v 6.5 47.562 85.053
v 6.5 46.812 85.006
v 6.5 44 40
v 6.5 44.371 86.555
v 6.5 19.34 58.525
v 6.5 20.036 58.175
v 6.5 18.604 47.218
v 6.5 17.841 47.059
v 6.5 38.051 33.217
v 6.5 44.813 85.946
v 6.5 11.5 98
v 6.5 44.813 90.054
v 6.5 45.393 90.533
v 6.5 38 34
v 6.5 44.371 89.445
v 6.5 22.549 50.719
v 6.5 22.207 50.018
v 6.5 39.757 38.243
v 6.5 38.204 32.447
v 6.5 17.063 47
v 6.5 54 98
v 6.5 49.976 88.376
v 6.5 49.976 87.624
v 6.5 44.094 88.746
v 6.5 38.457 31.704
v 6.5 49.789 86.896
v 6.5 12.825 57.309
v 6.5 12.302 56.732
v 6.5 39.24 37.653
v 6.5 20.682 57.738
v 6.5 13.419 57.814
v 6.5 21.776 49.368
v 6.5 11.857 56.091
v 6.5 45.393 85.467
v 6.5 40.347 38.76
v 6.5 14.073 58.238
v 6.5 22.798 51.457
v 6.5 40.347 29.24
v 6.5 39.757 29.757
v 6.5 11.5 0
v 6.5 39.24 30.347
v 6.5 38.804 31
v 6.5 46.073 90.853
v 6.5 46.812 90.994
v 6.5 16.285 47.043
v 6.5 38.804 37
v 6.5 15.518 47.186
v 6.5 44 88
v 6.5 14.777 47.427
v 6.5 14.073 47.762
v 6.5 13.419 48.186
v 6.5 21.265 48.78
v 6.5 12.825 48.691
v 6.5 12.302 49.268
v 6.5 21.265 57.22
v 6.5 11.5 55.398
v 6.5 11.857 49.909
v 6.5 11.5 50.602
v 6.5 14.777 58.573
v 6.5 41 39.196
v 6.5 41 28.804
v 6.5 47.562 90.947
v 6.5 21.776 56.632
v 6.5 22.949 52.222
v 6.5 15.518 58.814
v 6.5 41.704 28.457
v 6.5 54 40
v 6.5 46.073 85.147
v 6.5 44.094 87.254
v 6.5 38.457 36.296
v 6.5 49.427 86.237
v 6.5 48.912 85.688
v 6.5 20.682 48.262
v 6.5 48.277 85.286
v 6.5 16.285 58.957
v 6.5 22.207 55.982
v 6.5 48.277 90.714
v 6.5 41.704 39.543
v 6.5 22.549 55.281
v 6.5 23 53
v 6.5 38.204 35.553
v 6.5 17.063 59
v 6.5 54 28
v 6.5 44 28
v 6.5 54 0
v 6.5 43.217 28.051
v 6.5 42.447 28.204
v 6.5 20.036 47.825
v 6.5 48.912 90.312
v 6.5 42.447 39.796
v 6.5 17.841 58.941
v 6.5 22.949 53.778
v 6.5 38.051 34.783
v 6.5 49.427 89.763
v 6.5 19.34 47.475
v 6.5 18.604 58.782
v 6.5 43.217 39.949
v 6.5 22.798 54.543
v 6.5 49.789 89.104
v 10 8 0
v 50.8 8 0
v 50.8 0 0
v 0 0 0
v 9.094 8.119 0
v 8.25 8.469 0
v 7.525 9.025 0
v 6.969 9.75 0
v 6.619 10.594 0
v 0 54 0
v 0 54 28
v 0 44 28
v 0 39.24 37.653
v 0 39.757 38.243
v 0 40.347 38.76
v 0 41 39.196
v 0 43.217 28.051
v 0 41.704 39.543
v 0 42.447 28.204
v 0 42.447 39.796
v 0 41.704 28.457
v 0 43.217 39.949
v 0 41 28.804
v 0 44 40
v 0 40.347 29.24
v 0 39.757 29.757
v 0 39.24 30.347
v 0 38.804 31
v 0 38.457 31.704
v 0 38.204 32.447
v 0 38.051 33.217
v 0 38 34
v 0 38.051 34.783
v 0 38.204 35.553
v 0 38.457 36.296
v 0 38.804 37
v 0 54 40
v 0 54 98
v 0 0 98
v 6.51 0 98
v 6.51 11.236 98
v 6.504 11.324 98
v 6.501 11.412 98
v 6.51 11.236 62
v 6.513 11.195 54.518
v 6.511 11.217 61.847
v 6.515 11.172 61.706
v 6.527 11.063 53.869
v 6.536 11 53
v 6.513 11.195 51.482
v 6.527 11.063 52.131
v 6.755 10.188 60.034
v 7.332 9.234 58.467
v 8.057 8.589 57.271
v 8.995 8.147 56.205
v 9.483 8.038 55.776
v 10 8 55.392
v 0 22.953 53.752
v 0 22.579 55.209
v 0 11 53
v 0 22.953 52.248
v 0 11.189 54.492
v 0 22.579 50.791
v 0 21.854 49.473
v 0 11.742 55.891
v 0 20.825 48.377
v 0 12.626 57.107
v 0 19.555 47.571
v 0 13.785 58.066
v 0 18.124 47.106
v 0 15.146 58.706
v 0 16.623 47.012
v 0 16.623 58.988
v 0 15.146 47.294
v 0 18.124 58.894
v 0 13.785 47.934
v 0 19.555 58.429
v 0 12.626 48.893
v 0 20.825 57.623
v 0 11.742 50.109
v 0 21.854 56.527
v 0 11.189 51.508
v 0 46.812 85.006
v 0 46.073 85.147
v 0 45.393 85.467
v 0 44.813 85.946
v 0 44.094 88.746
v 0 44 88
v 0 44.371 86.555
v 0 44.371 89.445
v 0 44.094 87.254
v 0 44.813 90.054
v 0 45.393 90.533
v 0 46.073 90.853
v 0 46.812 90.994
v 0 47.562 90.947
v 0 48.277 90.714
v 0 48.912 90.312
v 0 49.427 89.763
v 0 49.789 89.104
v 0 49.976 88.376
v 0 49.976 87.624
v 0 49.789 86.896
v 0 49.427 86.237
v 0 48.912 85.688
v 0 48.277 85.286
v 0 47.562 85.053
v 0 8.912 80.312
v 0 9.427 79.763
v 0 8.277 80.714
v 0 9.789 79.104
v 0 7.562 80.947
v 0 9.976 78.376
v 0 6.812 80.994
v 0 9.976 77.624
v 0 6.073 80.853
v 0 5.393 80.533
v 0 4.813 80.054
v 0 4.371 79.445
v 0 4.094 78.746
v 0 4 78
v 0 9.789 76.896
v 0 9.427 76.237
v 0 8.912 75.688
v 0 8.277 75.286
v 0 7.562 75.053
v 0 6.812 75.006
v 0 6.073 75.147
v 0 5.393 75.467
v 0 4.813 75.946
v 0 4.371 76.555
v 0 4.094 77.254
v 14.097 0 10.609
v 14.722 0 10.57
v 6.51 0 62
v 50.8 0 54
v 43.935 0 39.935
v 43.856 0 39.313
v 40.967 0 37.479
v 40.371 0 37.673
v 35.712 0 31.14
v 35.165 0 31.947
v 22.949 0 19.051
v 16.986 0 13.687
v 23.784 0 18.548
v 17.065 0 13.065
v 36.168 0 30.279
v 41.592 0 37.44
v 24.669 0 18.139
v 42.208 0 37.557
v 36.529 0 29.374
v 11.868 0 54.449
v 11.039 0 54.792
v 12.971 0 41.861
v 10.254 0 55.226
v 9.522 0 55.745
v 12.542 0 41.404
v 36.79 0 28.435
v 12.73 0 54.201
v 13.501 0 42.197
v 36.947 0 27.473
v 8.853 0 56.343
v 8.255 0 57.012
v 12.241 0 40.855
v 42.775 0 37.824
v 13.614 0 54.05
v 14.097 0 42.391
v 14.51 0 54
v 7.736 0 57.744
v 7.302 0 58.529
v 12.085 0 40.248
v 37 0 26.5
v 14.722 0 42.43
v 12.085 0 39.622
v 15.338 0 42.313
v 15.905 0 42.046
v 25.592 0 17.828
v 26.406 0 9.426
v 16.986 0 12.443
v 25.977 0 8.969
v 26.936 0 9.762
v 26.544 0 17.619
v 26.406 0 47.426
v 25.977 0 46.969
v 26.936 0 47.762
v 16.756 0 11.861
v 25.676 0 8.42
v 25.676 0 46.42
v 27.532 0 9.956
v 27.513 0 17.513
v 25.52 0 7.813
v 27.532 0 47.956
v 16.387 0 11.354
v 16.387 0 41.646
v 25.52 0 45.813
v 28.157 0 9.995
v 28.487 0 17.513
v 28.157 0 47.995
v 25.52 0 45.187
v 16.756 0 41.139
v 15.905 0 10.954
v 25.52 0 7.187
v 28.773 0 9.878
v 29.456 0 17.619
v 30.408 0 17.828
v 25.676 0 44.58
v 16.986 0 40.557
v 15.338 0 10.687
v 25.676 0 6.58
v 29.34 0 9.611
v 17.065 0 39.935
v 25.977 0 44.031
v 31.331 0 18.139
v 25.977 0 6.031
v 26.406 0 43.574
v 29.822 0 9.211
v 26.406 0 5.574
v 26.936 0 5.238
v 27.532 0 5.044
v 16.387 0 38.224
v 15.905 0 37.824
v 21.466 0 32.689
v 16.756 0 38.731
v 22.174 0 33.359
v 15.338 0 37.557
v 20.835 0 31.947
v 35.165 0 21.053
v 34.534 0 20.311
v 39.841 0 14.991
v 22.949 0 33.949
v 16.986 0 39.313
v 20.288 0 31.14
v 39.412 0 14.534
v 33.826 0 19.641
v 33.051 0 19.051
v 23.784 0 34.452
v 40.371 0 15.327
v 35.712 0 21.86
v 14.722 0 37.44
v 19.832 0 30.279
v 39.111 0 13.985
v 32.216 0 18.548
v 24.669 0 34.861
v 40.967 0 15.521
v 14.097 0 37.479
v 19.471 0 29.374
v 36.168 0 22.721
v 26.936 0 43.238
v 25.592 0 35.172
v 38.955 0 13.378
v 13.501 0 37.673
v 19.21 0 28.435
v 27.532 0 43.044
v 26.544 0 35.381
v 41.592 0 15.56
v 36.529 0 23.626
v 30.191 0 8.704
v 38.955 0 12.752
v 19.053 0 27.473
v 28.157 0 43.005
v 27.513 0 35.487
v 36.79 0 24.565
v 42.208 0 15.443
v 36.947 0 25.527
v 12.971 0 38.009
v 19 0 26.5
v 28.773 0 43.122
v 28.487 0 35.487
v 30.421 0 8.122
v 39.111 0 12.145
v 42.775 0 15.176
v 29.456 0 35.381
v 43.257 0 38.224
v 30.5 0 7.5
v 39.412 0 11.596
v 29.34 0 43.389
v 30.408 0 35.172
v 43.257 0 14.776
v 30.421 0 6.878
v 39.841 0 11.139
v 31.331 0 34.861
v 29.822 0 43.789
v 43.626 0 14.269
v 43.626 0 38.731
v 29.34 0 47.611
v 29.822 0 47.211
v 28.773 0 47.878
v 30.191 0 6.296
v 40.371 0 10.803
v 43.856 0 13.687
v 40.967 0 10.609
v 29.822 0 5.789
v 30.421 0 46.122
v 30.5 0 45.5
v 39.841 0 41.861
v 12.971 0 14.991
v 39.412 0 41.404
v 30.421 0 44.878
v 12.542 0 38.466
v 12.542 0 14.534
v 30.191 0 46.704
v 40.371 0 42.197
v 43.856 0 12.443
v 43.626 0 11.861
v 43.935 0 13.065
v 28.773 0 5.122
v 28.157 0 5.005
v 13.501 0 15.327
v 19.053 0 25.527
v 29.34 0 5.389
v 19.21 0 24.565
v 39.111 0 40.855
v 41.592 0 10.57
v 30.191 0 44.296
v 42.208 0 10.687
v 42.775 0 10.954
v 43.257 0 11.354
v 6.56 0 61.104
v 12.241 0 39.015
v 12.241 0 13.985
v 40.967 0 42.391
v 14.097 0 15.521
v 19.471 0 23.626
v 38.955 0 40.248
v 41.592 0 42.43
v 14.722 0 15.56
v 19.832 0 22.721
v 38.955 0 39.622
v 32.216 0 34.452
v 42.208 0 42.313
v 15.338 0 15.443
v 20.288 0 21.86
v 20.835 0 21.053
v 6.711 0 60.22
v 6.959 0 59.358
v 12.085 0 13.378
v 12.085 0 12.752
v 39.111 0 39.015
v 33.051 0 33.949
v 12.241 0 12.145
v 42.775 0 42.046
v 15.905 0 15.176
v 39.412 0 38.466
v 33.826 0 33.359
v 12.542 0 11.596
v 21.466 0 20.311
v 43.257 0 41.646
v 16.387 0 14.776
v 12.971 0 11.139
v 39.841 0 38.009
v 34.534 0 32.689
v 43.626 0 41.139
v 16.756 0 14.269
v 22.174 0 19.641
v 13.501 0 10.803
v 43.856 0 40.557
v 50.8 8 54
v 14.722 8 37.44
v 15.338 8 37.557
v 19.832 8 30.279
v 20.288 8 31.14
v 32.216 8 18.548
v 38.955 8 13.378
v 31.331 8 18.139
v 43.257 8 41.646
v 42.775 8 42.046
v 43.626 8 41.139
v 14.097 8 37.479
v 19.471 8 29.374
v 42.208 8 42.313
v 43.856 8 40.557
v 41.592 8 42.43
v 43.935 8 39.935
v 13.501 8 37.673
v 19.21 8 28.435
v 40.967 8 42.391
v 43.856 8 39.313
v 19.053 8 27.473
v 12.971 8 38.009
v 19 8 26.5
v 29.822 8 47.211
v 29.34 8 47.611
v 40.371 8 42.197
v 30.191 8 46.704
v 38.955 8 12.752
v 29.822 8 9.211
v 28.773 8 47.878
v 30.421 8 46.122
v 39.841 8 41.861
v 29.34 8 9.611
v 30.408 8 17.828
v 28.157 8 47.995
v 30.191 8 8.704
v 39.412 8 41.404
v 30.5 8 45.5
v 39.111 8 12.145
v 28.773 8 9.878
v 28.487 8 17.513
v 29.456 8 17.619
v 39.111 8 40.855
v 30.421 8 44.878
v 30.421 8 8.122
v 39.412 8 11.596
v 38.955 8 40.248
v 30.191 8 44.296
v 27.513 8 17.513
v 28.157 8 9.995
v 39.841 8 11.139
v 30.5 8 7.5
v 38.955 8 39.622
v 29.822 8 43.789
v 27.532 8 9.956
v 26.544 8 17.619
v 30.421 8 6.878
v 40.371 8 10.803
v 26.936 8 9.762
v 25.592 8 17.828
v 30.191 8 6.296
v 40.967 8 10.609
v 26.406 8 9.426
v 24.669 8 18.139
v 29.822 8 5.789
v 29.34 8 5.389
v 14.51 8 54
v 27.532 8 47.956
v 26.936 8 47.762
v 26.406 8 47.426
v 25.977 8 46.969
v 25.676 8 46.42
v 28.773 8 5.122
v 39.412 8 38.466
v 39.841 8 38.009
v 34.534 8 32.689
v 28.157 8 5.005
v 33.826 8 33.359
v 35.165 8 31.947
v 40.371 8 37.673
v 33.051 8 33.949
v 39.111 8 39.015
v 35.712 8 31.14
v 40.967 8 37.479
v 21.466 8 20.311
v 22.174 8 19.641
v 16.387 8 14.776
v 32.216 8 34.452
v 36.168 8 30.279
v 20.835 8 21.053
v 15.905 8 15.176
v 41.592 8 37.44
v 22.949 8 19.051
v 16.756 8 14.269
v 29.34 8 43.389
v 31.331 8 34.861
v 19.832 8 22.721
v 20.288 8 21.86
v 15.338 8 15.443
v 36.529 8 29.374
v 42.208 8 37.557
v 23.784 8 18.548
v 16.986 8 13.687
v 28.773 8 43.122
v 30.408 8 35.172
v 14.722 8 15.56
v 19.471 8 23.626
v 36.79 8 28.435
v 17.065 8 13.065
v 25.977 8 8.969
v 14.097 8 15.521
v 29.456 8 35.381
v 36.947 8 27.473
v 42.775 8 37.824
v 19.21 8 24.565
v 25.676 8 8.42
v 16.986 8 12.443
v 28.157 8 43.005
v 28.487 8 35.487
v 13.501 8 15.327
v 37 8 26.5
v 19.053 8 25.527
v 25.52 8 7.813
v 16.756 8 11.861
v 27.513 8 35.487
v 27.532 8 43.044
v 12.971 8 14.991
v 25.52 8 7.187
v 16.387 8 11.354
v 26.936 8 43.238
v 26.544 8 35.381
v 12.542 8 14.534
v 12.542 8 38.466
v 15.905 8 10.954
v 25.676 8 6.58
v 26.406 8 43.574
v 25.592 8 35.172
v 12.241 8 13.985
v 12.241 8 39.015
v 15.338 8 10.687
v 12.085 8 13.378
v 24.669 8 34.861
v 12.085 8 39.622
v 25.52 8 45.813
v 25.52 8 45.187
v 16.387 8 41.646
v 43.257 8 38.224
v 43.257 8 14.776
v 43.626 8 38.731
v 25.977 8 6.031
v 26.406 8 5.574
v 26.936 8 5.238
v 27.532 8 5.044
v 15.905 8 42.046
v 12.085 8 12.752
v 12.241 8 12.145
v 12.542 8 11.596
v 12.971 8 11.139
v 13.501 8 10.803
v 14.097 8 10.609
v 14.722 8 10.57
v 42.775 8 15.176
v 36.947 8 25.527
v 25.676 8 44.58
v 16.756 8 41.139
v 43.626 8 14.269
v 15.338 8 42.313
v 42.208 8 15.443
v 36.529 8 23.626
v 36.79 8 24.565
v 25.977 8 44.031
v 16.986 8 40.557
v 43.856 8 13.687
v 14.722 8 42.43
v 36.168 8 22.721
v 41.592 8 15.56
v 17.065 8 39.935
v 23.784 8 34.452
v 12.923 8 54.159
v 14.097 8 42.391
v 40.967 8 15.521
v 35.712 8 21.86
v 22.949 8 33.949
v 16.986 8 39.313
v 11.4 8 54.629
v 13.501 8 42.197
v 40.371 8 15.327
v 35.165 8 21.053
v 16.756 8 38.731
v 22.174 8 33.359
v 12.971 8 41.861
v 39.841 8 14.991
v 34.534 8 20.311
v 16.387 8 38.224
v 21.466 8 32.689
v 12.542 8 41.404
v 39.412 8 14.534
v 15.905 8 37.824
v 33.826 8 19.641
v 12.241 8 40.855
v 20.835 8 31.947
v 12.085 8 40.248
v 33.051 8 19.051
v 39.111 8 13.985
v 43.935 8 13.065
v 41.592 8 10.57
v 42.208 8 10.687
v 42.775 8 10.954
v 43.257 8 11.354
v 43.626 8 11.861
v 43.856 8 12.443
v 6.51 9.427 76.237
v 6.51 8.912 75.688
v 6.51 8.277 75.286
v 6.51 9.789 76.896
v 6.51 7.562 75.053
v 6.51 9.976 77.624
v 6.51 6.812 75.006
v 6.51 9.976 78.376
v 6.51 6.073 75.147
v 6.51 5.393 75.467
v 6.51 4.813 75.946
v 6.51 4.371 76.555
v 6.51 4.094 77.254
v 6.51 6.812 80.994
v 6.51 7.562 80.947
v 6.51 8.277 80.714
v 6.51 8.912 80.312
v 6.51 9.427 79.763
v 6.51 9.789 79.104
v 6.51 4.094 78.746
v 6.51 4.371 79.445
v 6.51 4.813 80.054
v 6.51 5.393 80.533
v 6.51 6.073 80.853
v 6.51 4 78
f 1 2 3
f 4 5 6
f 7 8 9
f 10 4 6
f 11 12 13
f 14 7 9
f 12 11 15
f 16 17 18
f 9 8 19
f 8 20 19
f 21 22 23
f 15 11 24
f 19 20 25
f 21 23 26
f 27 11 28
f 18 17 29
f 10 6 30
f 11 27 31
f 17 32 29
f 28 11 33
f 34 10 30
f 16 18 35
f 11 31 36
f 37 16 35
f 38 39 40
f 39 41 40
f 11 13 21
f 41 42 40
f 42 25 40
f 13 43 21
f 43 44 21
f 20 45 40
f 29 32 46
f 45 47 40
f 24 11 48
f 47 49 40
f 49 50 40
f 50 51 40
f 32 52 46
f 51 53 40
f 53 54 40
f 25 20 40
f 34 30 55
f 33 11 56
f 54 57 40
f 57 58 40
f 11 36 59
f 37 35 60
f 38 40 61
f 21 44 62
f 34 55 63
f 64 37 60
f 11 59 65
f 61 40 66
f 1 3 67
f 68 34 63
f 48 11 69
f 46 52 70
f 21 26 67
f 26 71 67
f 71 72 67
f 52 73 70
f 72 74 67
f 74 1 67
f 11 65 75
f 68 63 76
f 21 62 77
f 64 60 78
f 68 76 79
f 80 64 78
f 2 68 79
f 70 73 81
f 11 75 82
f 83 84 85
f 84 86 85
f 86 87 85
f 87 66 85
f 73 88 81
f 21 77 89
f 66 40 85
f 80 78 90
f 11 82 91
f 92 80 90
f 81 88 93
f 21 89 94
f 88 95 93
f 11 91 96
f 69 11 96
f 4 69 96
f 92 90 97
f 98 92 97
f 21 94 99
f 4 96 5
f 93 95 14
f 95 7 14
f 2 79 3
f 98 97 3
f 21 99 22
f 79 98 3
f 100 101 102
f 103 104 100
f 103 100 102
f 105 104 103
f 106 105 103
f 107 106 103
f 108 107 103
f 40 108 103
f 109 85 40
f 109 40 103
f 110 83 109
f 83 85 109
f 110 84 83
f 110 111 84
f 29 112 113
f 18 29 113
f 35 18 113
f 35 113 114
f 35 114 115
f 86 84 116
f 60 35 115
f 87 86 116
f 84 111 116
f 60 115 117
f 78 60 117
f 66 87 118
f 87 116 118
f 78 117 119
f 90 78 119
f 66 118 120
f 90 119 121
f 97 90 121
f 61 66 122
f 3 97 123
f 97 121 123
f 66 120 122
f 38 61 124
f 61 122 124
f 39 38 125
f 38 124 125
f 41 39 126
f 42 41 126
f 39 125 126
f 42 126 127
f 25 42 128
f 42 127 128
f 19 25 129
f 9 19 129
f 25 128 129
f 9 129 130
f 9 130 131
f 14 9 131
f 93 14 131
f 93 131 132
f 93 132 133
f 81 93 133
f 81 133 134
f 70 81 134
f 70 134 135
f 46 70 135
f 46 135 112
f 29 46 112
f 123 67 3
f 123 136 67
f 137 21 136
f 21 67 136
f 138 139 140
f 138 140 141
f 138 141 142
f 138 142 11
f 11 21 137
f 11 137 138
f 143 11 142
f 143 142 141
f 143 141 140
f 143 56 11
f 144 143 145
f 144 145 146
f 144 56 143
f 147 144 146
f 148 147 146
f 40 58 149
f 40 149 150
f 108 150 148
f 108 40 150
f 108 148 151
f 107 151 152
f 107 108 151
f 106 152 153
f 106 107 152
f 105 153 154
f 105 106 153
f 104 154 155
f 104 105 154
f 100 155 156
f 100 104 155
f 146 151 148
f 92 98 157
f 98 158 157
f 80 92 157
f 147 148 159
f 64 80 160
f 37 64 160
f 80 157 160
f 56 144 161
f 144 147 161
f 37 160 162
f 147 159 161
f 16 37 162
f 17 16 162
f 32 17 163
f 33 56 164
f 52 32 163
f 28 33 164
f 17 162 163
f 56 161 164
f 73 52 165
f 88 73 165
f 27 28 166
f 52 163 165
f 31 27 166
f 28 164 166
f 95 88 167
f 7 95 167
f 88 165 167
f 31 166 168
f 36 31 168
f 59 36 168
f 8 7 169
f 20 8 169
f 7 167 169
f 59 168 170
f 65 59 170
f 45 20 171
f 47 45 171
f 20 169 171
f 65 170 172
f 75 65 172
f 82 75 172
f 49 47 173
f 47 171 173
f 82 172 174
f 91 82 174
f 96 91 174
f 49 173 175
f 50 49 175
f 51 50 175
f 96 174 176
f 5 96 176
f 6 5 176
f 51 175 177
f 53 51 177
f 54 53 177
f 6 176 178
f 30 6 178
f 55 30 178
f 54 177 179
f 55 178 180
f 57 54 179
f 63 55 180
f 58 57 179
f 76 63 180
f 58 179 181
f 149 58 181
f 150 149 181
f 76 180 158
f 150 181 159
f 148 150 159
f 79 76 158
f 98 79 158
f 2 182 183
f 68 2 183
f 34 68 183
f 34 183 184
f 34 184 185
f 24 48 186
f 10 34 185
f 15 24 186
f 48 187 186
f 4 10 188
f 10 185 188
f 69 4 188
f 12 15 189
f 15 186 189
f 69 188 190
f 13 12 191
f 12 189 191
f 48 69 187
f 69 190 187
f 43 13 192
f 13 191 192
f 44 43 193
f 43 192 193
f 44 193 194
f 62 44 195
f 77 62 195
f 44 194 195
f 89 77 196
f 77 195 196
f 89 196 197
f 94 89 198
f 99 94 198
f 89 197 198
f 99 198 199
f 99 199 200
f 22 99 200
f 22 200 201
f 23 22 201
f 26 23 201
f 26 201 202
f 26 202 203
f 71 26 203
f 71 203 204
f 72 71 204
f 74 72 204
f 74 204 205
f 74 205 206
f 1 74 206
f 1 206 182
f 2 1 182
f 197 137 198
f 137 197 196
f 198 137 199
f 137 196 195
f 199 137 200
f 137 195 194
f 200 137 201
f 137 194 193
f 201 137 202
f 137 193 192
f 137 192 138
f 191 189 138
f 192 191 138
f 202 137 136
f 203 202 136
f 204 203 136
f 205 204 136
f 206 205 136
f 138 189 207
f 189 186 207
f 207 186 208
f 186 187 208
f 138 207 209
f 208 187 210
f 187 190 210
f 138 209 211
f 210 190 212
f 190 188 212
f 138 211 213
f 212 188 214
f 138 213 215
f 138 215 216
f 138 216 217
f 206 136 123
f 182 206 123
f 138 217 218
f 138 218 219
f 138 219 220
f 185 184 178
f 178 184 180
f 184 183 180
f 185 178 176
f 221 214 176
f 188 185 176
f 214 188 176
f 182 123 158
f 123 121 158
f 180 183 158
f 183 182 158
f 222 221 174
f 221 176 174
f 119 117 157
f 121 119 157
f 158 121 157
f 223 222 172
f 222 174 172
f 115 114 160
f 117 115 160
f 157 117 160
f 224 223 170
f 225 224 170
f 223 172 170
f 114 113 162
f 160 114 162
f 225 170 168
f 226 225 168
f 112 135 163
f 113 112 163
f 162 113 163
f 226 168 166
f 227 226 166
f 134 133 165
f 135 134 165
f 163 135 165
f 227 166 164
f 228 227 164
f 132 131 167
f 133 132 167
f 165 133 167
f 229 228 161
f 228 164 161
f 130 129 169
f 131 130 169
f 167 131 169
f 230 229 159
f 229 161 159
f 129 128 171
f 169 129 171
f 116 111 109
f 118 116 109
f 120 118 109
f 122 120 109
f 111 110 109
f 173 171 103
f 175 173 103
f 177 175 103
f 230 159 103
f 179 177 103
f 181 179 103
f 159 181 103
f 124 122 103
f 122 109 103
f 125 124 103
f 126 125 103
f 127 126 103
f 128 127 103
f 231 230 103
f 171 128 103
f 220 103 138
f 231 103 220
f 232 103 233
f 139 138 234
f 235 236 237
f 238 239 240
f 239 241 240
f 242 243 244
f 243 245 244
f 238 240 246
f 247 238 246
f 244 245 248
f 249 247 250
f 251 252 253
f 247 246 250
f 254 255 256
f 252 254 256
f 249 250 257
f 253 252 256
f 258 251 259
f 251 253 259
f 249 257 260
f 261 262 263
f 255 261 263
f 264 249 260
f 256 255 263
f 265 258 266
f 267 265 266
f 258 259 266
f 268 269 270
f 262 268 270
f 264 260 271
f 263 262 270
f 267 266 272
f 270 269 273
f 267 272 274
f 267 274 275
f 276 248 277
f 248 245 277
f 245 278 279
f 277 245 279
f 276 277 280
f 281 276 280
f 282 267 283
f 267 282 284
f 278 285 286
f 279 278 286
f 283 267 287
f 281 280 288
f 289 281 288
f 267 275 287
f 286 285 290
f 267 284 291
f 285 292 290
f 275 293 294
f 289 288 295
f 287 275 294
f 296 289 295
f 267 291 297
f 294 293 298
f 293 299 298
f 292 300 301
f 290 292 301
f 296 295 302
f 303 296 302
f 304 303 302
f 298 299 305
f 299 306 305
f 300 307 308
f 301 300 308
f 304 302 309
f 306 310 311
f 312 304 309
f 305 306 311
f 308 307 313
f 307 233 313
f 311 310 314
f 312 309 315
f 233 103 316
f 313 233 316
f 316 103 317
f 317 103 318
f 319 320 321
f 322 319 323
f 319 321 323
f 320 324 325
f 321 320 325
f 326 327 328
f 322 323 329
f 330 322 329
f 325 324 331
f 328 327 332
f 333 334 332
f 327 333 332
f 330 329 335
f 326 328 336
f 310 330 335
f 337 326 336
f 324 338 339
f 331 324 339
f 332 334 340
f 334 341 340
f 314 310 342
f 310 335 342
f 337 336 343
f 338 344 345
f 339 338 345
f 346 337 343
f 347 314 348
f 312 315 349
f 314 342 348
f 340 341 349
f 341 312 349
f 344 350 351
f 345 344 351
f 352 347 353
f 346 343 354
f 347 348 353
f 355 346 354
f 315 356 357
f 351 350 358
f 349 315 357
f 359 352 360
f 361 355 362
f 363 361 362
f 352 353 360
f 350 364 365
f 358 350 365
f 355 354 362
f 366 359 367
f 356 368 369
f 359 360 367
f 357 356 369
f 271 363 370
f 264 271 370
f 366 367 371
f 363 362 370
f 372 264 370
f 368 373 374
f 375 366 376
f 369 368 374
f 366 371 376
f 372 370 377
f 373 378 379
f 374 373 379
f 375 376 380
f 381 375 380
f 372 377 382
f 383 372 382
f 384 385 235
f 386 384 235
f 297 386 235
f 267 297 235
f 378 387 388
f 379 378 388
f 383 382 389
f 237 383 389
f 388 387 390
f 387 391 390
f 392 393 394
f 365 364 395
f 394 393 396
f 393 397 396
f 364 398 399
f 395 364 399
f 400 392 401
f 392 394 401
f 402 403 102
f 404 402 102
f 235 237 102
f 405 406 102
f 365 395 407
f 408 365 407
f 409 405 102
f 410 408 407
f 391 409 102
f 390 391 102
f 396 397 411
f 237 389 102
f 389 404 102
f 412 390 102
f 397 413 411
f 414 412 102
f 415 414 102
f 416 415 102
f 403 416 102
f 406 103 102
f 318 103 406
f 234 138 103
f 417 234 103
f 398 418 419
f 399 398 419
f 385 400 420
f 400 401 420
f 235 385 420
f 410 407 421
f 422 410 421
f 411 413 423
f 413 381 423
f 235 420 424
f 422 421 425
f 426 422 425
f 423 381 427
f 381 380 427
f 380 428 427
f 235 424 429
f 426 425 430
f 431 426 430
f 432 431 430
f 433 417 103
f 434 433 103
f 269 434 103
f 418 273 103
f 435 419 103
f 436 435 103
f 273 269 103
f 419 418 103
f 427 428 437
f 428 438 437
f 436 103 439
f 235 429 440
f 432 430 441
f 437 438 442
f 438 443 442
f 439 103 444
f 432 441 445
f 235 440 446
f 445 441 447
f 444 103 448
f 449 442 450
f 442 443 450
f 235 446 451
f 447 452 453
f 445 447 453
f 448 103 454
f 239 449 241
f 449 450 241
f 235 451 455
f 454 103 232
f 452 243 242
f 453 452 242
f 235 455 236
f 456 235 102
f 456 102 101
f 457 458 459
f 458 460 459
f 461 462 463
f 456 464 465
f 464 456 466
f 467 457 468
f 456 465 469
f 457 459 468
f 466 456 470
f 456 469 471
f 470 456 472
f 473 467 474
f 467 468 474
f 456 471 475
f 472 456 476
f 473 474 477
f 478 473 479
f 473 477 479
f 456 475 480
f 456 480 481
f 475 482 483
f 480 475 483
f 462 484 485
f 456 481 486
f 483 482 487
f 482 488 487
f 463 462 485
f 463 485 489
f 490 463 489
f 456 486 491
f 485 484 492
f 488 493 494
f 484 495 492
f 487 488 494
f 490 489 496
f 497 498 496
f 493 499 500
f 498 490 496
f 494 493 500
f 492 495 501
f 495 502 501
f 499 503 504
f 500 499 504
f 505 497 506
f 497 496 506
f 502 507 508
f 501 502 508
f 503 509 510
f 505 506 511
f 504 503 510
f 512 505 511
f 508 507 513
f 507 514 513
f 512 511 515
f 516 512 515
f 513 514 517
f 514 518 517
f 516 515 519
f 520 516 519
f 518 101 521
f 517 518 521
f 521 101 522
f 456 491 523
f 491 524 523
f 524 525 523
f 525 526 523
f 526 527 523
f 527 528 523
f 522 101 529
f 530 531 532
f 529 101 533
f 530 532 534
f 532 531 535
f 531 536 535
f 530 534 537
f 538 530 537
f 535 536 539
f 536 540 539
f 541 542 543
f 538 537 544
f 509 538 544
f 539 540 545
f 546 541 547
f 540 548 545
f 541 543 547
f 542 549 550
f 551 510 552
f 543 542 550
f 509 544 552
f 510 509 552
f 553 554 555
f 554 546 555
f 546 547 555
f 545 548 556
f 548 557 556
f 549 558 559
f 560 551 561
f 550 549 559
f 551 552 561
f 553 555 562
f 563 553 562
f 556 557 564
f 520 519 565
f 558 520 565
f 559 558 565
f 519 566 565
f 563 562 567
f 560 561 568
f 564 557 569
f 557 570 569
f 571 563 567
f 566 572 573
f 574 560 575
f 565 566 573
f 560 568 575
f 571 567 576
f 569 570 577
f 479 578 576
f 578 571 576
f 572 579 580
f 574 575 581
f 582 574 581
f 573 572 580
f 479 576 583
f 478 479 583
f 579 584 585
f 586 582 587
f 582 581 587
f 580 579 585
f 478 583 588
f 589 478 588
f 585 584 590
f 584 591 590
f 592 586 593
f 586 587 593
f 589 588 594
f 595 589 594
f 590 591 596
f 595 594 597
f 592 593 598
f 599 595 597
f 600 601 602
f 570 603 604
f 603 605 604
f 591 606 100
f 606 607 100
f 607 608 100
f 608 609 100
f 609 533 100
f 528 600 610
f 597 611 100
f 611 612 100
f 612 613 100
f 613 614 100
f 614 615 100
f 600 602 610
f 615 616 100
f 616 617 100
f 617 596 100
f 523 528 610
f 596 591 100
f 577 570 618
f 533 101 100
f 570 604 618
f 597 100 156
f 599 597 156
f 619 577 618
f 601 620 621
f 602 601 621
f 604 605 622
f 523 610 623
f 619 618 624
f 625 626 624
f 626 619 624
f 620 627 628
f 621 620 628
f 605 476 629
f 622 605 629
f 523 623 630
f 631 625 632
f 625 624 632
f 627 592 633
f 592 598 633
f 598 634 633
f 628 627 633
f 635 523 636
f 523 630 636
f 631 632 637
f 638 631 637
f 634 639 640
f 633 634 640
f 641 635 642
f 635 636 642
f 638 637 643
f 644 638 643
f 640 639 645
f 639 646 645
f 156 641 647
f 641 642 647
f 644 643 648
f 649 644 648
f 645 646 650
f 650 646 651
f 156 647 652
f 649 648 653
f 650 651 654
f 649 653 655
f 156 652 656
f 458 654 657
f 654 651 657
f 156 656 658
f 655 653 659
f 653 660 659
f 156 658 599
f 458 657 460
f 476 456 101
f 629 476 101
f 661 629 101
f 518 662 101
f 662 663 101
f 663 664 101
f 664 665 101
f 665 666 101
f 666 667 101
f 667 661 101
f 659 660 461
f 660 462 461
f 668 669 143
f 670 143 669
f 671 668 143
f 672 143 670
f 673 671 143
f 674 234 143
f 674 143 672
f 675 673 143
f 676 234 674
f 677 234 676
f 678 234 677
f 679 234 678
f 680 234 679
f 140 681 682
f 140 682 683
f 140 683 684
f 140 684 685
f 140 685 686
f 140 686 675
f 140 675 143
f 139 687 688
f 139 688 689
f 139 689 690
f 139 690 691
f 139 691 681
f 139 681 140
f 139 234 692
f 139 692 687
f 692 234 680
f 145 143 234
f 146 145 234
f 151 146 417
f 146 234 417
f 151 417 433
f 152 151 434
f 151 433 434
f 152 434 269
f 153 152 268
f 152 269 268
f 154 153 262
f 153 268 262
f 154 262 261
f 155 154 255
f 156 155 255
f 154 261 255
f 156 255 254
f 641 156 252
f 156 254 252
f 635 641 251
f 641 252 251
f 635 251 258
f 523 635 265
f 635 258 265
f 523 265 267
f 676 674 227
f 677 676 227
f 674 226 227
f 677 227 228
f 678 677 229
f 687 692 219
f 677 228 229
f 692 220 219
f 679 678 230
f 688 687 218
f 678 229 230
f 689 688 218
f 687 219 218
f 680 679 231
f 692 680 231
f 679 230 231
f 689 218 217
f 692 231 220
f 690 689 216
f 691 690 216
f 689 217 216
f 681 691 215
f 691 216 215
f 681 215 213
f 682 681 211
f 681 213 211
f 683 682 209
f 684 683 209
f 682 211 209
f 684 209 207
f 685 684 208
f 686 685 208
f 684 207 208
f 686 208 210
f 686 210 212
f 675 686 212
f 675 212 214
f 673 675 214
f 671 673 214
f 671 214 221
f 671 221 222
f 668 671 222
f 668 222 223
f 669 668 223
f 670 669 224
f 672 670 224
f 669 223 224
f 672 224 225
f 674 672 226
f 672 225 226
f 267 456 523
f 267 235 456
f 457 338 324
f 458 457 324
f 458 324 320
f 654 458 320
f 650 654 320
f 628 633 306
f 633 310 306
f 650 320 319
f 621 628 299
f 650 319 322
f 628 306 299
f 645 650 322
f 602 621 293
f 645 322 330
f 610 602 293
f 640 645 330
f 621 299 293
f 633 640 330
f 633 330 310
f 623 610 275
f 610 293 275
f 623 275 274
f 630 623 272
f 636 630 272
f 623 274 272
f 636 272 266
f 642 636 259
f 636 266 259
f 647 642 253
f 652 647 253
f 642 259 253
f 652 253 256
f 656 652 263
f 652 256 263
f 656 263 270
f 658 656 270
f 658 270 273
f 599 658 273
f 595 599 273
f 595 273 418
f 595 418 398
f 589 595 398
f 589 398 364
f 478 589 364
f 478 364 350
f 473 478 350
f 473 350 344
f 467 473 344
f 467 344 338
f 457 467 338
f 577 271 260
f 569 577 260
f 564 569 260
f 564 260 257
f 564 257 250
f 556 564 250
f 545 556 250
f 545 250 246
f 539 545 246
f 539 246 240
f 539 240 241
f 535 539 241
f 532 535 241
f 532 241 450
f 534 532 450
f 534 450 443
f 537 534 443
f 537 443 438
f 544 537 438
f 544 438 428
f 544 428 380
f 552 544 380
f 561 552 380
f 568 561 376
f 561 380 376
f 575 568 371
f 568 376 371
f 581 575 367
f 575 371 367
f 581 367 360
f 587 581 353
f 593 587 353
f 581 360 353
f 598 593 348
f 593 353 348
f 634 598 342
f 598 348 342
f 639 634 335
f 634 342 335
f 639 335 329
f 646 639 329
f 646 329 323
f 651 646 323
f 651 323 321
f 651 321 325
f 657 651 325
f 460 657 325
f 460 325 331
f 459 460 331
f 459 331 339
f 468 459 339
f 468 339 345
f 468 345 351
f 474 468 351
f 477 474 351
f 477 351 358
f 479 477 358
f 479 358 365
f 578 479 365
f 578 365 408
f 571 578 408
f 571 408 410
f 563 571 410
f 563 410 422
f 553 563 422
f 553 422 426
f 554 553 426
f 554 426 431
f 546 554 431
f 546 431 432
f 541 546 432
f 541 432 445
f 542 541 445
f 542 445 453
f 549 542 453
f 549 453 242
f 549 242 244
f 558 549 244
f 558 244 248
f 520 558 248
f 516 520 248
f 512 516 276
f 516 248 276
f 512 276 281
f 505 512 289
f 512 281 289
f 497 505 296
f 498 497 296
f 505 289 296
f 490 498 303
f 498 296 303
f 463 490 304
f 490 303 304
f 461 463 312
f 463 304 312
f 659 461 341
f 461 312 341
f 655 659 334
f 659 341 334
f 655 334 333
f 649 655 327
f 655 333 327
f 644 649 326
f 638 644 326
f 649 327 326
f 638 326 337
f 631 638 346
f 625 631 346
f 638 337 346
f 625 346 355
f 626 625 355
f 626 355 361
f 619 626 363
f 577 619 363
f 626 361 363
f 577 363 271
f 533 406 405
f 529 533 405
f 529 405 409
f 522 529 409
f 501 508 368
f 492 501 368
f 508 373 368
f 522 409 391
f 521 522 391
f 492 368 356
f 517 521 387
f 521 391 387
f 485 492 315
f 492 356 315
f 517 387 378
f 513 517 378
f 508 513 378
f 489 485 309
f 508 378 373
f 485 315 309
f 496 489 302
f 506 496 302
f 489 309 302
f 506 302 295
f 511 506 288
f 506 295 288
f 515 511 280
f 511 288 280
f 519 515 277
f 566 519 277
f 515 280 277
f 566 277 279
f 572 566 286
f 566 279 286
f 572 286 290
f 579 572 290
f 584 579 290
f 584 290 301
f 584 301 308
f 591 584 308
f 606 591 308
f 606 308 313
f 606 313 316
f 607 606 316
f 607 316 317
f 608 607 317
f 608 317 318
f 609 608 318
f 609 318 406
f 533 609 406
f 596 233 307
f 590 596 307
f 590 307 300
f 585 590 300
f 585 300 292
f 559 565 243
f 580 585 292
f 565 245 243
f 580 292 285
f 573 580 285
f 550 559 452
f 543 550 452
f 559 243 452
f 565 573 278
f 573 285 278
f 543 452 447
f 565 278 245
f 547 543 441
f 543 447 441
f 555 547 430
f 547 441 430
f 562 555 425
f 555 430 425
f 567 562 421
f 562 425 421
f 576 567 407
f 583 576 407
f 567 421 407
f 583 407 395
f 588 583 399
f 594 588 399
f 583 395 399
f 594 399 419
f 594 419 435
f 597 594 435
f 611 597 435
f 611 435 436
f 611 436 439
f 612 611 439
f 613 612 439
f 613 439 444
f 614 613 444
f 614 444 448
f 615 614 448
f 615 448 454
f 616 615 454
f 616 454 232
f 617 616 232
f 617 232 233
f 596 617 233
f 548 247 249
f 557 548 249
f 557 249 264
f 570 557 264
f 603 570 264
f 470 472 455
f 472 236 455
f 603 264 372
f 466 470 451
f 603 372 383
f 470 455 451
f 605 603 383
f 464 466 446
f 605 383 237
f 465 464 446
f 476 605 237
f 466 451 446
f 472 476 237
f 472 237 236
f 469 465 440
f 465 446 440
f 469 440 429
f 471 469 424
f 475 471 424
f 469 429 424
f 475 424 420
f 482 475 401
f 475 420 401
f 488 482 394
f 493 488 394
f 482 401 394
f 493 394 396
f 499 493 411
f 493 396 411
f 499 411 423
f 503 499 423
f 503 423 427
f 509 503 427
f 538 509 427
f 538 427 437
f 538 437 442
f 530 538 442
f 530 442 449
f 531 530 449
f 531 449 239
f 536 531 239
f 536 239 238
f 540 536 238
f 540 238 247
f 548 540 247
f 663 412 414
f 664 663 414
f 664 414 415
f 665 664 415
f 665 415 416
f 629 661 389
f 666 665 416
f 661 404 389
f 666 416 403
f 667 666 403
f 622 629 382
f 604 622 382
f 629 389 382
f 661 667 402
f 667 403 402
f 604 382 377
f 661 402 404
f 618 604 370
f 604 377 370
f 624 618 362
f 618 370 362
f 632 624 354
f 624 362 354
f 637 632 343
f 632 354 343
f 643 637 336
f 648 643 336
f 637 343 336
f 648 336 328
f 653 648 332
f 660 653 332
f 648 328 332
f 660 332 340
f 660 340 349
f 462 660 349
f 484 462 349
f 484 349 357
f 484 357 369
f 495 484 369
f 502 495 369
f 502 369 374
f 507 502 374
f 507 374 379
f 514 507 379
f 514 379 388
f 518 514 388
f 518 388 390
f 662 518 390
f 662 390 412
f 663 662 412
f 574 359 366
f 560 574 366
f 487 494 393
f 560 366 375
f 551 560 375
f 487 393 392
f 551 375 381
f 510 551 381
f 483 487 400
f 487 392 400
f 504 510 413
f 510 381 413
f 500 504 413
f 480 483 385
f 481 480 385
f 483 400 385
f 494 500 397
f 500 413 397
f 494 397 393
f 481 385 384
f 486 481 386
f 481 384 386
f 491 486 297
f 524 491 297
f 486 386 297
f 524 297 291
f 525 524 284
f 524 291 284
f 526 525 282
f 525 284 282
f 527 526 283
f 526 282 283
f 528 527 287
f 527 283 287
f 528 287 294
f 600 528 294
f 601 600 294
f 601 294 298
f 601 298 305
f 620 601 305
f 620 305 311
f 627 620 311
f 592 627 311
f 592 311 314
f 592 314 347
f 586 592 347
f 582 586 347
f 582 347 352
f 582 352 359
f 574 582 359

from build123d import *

# Parameters (mm, degrees)
PAD_DEPTH       = 98
SKETCH001_R     = 3
SKETCH001_R_2   = 6
POCKET_DEPTH    = 7
SKETCH002_R     = 9
SKETCH002_R_2   = 2.5
POCKET001_DEPTH = 12


with BuildPart() as part:
    # Sketch → Pad (new body)
    with BuildSketch(Plane.XY):
        with BuildLine():
            Line((6.5, 11.500018), (6.5, 54))
            Line((6.5, 54), (0, 54))
            Line((0, 54), (0, 0))
            Line((0, 0), (50.8, 0))
            Line((50.8, 0), (50.8, 8))
            Line((50.8, 8), (10, 8))
            ThreePointArc((6.5, 11.500018), (7.52512, 9.025133), (10, 8))
        make_face()
    extrude(amount=PAD_DEPTH)

    # Sketch001 → Pocket (cut)
    with BuildSketch(Plane(origin=(0, 0, 0), x_dir=(0, -1, 0), z_dir=(-1, 0, 0))):
        with Locations((-47, 88)):
            Circle(SKETCH001_R)
        with Locations((-7, 78)):
            Circle(SKETCH001_R)
        with Locations((-17, 53)):
            Circle(SKETCH001_R_2)
        with BuildLine():
            Line((-44.000031, 28), (-55, 28))
            Line((-55, 28), (-55, 40))
            Line((-55, 40), (-44.000031, 40))
            ThreePointArc((-44.000031, 28), (-38, 34), (-44.000031, 40))
        make_face()
    extrude(amount=-POCKET_DEPTH, mode=Mode.SUBTRACT)

    # Sketch002 → Pocket001 (cut)
    with BuildSketch(Plane.XZ):
        with Locations((28, 26.5)):
            Circle(SKETCH002_R)
        with Locations((14.564971, 39.935029)):
            Circle(SKETCH002_R_2)
        with Locations((28, 45.5)):
            Circle(SKETCH002_R_2)
        with Locations((41.435029, 39.935029)):
            Circle(SKETCH002_R_2)
        with Locations((14.564971, 13.064971)):
            Circle(SKETCH002_R_2)
        with Locations((28, 7.5)):
            Circle(SKETCH002_R_2)
        with Locations((41.435029, 13.064971)):
            Circle(SKETCH002_R_2)
        with BuildLine():
            Line((6.51, 61.999971), (6.51, 98))
            Line((6.51, 98), (50.8, 98))
            Line((50.8, 98), (50.8, 54))
            Line((50.8, 54), (14.509971, 54))
            ThreePointArc((6.51, 61.999971), (8.853146, 56.343146), (14.509971, 54))
        make_face()
    extrude(amount=-POCKET001_DEPTH, mode=Mode.SUBTRACT)


solid = part.part
